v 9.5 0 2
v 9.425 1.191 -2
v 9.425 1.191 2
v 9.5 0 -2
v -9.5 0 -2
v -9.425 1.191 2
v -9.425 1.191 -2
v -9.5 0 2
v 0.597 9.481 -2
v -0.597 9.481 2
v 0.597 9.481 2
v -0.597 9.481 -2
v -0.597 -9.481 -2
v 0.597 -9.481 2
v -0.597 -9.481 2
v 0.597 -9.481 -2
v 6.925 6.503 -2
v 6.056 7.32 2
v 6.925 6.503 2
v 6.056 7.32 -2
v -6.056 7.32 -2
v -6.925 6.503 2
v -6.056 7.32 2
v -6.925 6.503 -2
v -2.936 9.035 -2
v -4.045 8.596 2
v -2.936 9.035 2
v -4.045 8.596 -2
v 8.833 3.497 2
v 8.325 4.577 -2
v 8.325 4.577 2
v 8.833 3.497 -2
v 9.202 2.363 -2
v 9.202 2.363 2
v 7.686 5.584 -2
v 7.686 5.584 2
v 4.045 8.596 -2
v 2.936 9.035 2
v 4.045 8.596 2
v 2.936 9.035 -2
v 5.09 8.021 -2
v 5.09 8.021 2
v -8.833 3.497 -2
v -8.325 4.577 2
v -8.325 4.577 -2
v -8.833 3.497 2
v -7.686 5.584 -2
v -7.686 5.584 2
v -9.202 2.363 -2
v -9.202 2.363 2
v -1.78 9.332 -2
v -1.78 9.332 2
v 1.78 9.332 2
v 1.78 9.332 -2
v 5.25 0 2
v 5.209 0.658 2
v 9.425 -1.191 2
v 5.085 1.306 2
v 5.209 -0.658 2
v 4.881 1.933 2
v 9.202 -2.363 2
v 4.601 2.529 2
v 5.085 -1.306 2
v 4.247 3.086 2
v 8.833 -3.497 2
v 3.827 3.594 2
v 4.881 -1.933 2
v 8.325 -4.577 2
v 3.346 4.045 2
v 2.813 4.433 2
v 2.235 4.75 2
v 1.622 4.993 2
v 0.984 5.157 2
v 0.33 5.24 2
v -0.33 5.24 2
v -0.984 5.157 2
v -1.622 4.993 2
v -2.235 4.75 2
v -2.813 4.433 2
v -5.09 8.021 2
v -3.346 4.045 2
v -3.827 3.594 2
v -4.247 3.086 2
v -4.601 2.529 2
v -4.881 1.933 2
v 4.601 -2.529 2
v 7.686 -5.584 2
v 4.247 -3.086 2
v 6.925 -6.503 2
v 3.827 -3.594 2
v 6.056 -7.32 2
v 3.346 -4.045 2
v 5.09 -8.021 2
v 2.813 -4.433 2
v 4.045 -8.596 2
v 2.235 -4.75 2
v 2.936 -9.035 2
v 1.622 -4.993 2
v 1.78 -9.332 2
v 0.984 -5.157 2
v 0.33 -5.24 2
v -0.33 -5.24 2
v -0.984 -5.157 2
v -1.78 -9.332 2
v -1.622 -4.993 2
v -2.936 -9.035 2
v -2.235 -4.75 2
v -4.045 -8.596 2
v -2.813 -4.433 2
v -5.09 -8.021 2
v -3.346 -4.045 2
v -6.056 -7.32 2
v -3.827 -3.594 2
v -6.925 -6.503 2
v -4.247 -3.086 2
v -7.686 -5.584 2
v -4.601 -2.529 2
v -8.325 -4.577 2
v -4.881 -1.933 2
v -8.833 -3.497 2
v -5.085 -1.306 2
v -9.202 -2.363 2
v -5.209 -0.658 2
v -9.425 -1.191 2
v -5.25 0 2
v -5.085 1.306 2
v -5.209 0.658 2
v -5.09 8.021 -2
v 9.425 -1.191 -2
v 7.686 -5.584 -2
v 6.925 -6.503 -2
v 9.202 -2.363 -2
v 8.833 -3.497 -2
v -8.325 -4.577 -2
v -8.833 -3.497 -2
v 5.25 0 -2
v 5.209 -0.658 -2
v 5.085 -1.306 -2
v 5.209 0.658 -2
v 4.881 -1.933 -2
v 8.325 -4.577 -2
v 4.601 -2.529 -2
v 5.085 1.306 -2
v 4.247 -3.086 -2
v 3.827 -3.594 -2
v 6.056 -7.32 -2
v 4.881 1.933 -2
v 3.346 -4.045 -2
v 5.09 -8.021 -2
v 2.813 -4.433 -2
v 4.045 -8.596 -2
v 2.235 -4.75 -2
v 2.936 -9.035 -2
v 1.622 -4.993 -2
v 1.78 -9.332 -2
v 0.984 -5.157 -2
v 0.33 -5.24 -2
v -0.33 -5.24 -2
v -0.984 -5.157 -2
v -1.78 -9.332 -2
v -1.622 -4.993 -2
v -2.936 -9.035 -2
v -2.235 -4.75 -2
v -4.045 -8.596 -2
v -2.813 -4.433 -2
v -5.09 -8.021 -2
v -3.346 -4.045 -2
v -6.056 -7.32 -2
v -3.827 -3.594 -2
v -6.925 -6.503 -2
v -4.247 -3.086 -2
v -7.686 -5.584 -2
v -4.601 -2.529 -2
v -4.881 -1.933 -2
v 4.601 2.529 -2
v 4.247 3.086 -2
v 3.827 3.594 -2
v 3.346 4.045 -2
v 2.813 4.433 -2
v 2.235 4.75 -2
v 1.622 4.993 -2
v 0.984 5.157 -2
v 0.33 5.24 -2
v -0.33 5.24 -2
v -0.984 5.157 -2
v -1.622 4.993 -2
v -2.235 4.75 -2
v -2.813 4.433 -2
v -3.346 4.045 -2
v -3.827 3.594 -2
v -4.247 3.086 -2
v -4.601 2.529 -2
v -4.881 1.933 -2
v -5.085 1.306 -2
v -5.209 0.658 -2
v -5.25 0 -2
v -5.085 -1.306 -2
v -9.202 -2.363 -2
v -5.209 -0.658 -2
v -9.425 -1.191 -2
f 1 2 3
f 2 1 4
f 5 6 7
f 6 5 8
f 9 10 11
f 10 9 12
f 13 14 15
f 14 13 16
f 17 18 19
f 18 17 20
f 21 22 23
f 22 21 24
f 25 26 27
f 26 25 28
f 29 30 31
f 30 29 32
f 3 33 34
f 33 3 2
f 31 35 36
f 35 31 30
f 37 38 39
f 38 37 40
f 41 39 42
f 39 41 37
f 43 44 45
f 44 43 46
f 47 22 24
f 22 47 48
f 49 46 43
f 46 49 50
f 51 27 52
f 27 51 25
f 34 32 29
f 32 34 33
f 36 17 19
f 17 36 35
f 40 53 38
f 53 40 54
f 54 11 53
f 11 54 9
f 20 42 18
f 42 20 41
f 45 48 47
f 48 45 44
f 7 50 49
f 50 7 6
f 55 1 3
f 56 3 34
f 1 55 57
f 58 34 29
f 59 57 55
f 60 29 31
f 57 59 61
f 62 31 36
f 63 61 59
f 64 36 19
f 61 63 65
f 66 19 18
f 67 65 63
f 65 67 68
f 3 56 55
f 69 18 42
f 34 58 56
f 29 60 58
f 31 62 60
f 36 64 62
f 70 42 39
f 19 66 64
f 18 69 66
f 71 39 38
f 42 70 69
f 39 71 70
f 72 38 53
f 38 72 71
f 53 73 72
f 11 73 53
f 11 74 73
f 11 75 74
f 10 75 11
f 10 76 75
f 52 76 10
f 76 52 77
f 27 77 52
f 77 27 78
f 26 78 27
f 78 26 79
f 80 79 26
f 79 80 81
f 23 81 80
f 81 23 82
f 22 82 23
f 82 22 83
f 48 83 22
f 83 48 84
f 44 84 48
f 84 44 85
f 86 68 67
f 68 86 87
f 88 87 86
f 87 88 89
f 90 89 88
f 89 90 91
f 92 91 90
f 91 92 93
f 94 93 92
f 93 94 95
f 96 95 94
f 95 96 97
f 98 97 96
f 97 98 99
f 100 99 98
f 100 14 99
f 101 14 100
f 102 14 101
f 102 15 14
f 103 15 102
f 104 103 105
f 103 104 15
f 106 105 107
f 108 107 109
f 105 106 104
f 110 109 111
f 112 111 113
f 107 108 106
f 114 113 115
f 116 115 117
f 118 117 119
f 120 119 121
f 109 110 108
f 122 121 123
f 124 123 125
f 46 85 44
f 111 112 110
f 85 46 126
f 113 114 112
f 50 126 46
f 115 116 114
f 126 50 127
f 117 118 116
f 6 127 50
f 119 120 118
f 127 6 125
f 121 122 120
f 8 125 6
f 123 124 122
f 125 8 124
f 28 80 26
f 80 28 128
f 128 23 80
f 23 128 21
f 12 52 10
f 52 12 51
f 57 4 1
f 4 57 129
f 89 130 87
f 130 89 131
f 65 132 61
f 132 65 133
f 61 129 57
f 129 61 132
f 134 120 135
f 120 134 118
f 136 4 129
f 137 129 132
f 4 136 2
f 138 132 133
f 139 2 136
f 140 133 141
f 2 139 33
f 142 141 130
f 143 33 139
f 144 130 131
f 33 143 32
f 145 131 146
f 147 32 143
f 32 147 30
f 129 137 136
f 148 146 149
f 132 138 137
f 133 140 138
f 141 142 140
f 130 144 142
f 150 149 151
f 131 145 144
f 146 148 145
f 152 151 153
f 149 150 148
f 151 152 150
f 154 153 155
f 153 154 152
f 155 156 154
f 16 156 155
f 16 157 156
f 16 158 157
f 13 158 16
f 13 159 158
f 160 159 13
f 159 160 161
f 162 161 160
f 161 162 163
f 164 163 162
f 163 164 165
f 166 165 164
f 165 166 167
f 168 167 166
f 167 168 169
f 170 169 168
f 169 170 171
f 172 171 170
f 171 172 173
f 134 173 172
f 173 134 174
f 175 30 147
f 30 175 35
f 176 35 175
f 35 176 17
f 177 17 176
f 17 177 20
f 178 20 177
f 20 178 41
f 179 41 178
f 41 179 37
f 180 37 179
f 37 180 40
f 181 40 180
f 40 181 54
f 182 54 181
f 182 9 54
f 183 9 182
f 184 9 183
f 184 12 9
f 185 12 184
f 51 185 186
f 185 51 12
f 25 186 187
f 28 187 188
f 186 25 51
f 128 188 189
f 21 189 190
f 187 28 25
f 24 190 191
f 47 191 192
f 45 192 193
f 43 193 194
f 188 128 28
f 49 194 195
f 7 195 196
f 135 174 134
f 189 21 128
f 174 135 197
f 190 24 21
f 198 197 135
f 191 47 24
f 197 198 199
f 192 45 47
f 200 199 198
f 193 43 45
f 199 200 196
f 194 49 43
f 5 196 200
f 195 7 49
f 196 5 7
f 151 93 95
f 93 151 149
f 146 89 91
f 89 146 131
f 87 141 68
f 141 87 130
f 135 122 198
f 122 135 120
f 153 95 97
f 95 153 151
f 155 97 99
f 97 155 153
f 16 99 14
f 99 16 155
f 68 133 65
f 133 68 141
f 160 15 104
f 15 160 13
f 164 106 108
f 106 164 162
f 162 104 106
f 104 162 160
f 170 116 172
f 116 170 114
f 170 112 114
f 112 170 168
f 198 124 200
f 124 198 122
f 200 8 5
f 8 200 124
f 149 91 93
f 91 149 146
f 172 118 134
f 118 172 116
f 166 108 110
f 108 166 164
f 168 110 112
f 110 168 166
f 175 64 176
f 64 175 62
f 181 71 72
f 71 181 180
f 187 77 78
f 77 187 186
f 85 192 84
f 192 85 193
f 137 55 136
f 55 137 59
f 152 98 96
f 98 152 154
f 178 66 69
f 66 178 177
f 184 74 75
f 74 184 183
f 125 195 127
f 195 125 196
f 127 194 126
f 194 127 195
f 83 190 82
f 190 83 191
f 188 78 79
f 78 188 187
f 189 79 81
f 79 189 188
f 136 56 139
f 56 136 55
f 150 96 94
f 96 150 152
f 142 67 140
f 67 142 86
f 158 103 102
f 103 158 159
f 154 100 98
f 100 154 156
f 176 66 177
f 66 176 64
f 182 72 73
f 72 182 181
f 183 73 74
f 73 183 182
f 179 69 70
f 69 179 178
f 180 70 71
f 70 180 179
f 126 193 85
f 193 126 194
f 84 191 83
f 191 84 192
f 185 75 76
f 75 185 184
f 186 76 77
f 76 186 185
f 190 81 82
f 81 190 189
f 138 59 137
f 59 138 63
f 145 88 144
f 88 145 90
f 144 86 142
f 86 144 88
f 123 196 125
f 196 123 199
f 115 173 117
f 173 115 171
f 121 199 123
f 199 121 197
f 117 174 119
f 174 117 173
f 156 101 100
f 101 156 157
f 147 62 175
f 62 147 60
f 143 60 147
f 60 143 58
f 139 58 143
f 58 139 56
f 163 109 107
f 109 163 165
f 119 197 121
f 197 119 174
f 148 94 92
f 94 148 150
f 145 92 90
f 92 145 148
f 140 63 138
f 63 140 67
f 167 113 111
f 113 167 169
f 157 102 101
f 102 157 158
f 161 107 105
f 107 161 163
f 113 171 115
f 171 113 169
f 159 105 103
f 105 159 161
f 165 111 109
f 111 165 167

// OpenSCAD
$fn = 50;


difference() {
	union() {
		translate(v = [0, 0, -2.0000000000]) {
			cylinder(h = 4, r = 9.5000000000);
		}
	}
	union() {
		translate(v = [0, 0, -100.0000000000]) {
			cylinder(h = 200, r = 5.2500000000);
		}
	}
}
